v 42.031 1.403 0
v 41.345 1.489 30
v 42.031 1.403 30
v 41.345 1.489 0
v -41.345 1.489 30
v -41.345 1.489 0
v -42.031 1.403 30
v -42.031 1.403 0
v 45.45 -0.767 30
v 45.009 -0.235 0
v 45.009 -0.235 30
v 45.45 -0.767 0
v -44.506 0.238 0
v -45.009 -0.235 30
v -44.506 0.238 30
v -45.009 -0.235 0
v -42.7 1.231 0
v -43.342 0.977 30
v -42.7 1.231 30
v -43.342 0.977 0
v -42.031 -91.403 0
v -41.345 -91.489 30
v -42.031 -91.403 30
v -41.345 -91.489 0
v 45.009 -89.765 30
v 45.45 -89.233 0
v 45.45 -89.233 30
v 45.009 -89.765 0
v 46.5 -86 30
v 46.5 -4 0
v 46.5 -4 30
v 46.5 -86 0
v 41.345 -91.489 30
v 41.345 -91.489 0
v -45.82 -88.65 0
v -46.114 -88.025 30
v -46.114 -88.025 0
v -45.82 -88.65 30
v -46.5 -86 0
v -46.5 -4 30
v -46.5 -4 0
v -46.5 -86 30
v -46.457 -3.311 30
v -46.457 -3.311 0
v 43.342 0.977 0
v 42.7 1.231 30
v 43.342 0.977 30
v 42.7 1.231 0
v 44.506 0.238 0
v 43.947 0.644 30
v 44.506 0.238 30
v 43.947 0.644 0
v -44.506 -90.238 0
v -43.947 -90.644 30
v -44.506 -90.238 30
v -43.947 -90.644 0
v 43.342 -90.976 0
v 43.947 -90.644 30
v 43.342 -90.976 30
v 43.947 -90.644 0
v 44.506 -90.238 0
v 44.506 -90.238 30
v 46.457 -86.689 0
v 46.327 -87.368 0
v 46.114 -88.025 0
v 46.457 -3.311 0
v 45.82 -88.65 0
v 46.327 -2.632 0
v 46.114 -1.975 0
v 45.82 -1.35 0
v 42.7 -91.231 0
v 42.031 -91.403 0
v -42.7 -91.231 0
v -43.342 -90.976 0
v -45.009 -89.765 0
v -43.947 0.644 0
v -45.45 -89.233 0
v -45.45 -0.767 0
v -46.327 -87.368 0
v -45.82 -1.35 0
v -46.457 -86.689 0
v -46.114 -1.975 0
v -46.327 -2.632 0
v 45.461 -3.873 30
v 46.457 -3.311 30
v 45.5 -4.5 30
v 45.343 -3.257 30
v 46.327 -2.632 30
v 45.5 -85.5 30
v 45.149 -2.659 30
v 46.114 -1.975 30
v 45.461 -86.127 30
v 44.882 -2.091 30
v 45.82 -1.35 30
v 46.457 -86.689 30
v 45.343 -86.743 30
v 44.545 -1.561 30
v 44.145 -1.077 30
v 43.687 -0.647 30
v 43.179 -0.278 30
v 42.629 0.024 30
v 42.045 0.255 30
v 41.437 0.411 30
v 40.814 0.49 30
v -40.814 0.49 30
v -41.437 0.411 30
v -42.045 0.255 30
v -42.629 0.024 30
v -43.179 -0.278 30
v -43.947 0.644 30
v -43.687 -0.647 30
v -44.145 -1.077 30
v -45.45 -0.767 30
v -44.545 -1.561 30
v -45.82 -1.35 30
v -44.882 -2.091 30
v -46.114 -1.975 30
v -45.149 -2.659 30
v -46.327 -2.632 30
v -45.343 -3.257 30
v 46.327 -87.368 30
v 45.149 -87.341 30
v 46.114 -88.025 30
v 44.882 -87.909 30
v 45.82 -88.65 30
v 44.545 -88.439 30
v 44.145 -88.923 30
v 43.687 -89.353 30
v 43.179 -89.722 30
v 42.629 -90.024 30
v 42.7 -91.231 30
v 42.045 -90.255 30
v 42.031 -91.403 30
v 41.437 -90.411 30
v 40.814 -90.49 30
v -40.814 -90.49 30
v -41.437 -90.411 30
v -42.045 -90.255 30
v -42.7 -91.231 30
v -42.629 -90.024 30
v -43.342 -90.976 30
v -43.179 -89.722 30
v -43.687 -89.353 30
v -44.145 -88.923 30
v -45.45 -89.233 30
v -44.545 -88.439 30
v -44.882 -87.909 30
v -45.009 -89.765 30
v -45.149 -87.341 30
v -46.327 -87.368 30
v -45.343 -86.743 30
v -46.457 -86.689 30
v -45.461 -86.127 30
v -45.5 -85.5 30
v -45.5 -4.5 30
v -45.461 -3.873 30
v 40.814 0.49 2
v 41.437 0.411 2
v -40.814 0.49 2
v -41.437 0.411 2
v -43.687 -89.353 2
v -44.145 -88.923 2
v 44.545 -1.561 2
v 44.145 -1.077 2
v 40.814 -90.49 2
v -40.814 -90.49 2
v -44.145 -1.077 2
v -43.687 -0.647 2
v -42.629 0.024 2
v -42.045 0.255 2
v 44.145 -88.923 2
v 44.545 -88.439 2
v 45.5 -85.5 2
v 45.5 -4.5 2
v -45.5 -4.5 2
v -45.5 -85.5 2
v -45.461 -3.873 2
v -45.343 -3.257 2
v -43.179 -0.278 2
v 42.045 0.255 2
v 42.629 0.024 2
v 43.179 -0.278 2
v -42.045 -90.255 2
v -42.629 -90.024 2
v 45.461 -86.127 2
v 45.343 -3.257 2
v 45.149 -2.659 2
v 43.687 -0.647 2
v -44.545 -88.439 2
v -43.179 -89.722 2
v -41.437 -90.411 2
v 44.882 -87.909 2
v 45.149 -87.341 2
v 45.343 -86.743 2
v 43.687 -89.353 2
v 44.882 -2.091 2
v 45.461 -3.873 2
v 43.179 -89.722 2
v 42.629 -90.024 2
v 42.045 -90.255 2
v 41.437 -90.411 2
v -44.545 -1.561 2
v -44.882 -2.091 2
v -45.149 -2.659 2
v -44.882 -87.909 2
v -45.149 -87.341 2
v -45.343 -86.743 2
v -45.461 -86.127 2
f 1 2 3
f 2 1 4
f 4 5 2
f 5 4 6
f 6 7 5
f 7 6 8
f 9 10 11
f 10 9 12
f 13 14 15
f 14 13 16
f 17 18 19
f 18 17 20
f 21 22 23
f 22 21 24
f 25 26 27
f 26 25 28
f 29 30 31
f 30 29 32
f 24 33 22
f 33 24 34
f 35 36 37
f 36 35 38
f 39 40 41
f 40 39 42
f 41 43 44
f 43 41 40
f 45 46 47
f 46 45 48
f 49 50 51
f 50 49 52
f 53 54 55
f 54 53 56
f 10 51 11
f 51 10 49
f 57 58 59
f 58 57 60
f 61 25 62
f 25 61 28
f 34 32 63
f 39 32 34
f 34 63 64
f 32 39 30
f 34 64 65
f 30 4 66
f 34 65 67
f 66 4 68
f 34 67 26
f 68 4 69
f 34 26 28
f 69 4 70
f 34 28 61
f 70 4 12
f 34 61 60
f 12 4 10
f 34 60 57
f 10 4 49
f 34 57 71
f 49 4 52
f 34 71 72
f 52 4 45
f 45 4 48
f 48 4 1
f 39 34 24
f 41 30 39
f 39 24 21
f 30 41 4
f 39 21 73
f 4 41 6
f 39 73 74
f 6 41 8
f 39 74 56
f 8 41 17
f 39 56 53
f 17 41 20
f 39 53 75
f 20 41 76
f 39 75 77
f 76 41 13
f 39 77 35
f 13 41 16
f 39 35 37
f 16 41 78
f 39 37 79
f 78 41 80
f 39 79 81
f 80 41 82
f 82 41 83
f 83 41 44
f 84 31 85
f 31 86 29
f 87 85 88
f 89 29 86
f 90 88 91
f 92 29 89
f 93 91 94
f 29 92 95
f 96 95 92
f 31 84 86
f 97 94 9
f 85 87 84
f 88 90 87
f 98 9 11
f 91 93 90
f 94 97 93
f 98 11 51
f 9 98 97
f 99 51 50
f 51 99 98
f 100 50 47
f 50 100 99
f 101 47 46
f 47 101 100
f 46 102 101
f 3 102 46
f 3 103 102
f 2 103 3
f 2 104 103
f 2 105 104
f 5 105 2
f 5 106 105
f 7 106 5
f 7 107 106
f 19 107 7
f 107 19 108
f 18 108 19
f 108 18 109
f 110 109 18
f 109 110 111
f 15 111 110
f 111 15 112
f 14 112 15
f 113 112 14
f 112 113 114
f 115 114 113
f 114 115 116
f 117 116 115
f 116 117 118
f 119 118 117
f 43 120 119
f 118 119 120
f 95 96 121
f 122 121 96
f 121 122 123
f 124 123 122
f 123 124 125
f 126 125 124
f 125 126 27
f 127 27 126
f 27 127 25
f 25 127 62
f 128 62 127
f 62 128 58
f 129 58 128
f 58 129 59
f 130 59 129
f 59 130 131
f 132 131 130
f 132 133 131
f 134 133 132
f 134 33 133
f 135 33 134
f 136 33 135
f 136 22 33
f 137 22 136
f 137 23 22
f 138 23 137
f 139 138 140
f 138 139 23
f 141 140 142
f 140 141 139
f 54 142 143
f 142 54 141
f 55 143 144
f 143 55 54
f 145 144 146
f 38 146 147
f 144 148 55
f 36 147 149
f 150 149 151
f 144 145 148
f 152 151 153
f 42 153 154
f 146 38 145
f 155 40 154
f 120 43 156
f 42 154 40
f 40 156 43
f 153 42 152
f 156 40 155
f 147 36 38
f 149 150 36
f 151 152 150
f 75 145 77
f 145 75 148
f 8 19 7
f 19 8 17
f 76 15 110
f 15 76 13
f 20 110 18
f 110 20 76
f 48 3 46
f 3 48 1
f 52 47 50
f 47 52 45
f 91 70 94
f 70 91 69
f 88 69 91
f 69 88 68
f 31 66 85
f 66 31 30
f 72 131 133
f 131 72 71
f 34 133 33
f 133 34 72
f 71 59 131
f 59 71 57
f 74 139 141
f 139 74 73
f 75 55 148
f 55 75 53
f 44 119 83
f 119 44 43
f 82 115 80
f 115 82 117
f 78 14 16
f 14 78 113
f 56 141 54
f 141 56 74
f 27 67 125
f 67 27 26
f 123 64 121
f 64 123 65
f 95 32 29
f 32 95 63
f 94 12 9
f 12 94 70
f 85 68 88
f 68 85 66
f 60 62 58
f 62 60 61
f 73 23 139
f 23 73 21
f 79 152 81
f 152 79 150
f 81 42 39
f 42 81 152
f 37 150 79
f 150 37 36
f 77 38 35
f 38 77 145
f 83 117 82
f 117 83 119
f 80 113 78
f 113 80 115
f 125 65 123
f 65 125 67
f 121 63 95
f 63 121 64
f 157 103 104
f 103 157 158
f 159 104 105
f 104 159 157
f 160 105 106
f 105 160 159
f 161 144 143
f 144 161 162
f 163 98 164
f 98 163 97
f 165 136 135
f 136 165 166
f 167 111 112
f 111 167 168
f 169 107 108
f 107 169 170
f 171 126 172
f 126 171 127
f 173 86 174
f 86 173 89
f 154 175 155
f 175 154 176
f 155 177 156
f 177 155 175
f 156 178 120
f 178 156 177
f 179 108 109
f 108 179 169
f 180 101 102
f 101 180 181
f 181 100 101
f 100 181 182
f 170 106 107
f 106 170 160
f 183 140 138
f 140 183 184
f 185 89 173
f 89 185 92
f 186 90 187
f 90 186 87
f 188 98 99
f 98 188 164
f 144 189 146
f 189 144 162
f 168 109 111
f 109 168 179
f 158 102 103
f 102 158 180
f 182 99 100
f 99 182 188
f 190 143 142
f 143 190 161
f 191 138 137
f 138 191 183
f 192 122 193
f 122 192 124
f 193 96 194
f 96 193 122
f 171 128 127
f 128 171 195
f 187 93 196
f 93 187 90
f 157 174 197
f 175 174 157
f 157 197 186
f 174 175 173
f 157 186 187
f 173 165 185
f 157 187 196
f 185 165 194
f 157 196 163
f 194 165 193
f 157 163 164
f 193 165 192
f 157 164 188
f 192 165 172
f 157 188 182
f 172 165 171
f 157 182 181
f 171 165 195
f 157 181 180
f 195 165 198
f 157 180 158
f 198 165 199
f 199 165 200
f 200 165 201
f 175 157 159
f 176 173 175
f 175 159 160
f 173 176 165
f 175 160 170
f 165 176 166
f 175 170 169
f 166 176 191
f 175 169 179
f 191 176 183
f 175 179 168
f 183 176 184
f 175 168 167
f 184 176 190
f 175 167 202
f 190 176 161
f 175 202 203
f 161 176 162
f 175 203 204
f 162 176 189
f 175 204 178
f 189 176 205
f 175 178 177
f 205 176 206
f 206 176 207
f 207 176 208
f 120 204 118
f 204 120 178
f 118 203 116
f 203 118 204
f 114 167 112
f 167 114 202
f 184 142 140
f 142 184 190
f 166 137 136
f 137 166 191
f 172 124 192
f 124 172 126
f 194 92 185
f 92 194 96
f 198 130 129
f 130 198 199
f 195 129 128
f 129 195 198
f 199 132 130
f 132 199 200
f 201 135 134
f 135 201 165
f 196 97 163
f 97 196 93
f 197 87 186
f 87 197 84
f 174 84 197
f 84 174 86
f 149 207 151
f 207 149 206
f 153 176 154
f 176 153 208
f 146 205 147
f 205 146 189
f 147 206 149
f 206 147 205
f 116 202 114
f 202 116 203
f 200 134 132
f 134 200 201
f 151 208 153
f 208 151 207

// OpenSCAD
$fn = 50;


difference() {
	union() {
		translate(v = [0, -45.0000000000, 0]) {
			hull() {
				translate(v = [-41.0000000000, 41.0000000000, 0]) {
					cylinder(h = 30, r = 5.5000000000);
				}
				translate(v = [41.0000000000, 41.0000000000, 0]) {
					cylinder(h = 30, r = 5.5000000000);
				}
				translate(v = [-41.0000000000, -41.0000000000, 0]) {
					cylinder(h = 30, r = 5.5000000000);
				}
				translate(v = [41.0000000000, -41.0000000000, 0]) {
					cylinder(h = 30, r = 5.5000000000);
				}
			}
		}
	}
	union() {
		translate(v = [0, -45.0000000000, 2]) {
			hull() {
				translate(v = [-40.5000000000, 40.5000000000, 0]) {
					cylinder(h = 60, r = 5);
				}
				translate(v = [40.5000000000, 40.5000000000, 0]) {
					cylinder(h = 60, r = 5);
				}
				translate(v = [-40.5000000000, -40.5000000000, 0]) {
					cylinder(h = 60, r = 5);
				}
				translate(v = [40.5000000000, -40.5000000000, 0]) {
					cylinder(h = 60, r = 5);
				}
			}
		}
	}
}
